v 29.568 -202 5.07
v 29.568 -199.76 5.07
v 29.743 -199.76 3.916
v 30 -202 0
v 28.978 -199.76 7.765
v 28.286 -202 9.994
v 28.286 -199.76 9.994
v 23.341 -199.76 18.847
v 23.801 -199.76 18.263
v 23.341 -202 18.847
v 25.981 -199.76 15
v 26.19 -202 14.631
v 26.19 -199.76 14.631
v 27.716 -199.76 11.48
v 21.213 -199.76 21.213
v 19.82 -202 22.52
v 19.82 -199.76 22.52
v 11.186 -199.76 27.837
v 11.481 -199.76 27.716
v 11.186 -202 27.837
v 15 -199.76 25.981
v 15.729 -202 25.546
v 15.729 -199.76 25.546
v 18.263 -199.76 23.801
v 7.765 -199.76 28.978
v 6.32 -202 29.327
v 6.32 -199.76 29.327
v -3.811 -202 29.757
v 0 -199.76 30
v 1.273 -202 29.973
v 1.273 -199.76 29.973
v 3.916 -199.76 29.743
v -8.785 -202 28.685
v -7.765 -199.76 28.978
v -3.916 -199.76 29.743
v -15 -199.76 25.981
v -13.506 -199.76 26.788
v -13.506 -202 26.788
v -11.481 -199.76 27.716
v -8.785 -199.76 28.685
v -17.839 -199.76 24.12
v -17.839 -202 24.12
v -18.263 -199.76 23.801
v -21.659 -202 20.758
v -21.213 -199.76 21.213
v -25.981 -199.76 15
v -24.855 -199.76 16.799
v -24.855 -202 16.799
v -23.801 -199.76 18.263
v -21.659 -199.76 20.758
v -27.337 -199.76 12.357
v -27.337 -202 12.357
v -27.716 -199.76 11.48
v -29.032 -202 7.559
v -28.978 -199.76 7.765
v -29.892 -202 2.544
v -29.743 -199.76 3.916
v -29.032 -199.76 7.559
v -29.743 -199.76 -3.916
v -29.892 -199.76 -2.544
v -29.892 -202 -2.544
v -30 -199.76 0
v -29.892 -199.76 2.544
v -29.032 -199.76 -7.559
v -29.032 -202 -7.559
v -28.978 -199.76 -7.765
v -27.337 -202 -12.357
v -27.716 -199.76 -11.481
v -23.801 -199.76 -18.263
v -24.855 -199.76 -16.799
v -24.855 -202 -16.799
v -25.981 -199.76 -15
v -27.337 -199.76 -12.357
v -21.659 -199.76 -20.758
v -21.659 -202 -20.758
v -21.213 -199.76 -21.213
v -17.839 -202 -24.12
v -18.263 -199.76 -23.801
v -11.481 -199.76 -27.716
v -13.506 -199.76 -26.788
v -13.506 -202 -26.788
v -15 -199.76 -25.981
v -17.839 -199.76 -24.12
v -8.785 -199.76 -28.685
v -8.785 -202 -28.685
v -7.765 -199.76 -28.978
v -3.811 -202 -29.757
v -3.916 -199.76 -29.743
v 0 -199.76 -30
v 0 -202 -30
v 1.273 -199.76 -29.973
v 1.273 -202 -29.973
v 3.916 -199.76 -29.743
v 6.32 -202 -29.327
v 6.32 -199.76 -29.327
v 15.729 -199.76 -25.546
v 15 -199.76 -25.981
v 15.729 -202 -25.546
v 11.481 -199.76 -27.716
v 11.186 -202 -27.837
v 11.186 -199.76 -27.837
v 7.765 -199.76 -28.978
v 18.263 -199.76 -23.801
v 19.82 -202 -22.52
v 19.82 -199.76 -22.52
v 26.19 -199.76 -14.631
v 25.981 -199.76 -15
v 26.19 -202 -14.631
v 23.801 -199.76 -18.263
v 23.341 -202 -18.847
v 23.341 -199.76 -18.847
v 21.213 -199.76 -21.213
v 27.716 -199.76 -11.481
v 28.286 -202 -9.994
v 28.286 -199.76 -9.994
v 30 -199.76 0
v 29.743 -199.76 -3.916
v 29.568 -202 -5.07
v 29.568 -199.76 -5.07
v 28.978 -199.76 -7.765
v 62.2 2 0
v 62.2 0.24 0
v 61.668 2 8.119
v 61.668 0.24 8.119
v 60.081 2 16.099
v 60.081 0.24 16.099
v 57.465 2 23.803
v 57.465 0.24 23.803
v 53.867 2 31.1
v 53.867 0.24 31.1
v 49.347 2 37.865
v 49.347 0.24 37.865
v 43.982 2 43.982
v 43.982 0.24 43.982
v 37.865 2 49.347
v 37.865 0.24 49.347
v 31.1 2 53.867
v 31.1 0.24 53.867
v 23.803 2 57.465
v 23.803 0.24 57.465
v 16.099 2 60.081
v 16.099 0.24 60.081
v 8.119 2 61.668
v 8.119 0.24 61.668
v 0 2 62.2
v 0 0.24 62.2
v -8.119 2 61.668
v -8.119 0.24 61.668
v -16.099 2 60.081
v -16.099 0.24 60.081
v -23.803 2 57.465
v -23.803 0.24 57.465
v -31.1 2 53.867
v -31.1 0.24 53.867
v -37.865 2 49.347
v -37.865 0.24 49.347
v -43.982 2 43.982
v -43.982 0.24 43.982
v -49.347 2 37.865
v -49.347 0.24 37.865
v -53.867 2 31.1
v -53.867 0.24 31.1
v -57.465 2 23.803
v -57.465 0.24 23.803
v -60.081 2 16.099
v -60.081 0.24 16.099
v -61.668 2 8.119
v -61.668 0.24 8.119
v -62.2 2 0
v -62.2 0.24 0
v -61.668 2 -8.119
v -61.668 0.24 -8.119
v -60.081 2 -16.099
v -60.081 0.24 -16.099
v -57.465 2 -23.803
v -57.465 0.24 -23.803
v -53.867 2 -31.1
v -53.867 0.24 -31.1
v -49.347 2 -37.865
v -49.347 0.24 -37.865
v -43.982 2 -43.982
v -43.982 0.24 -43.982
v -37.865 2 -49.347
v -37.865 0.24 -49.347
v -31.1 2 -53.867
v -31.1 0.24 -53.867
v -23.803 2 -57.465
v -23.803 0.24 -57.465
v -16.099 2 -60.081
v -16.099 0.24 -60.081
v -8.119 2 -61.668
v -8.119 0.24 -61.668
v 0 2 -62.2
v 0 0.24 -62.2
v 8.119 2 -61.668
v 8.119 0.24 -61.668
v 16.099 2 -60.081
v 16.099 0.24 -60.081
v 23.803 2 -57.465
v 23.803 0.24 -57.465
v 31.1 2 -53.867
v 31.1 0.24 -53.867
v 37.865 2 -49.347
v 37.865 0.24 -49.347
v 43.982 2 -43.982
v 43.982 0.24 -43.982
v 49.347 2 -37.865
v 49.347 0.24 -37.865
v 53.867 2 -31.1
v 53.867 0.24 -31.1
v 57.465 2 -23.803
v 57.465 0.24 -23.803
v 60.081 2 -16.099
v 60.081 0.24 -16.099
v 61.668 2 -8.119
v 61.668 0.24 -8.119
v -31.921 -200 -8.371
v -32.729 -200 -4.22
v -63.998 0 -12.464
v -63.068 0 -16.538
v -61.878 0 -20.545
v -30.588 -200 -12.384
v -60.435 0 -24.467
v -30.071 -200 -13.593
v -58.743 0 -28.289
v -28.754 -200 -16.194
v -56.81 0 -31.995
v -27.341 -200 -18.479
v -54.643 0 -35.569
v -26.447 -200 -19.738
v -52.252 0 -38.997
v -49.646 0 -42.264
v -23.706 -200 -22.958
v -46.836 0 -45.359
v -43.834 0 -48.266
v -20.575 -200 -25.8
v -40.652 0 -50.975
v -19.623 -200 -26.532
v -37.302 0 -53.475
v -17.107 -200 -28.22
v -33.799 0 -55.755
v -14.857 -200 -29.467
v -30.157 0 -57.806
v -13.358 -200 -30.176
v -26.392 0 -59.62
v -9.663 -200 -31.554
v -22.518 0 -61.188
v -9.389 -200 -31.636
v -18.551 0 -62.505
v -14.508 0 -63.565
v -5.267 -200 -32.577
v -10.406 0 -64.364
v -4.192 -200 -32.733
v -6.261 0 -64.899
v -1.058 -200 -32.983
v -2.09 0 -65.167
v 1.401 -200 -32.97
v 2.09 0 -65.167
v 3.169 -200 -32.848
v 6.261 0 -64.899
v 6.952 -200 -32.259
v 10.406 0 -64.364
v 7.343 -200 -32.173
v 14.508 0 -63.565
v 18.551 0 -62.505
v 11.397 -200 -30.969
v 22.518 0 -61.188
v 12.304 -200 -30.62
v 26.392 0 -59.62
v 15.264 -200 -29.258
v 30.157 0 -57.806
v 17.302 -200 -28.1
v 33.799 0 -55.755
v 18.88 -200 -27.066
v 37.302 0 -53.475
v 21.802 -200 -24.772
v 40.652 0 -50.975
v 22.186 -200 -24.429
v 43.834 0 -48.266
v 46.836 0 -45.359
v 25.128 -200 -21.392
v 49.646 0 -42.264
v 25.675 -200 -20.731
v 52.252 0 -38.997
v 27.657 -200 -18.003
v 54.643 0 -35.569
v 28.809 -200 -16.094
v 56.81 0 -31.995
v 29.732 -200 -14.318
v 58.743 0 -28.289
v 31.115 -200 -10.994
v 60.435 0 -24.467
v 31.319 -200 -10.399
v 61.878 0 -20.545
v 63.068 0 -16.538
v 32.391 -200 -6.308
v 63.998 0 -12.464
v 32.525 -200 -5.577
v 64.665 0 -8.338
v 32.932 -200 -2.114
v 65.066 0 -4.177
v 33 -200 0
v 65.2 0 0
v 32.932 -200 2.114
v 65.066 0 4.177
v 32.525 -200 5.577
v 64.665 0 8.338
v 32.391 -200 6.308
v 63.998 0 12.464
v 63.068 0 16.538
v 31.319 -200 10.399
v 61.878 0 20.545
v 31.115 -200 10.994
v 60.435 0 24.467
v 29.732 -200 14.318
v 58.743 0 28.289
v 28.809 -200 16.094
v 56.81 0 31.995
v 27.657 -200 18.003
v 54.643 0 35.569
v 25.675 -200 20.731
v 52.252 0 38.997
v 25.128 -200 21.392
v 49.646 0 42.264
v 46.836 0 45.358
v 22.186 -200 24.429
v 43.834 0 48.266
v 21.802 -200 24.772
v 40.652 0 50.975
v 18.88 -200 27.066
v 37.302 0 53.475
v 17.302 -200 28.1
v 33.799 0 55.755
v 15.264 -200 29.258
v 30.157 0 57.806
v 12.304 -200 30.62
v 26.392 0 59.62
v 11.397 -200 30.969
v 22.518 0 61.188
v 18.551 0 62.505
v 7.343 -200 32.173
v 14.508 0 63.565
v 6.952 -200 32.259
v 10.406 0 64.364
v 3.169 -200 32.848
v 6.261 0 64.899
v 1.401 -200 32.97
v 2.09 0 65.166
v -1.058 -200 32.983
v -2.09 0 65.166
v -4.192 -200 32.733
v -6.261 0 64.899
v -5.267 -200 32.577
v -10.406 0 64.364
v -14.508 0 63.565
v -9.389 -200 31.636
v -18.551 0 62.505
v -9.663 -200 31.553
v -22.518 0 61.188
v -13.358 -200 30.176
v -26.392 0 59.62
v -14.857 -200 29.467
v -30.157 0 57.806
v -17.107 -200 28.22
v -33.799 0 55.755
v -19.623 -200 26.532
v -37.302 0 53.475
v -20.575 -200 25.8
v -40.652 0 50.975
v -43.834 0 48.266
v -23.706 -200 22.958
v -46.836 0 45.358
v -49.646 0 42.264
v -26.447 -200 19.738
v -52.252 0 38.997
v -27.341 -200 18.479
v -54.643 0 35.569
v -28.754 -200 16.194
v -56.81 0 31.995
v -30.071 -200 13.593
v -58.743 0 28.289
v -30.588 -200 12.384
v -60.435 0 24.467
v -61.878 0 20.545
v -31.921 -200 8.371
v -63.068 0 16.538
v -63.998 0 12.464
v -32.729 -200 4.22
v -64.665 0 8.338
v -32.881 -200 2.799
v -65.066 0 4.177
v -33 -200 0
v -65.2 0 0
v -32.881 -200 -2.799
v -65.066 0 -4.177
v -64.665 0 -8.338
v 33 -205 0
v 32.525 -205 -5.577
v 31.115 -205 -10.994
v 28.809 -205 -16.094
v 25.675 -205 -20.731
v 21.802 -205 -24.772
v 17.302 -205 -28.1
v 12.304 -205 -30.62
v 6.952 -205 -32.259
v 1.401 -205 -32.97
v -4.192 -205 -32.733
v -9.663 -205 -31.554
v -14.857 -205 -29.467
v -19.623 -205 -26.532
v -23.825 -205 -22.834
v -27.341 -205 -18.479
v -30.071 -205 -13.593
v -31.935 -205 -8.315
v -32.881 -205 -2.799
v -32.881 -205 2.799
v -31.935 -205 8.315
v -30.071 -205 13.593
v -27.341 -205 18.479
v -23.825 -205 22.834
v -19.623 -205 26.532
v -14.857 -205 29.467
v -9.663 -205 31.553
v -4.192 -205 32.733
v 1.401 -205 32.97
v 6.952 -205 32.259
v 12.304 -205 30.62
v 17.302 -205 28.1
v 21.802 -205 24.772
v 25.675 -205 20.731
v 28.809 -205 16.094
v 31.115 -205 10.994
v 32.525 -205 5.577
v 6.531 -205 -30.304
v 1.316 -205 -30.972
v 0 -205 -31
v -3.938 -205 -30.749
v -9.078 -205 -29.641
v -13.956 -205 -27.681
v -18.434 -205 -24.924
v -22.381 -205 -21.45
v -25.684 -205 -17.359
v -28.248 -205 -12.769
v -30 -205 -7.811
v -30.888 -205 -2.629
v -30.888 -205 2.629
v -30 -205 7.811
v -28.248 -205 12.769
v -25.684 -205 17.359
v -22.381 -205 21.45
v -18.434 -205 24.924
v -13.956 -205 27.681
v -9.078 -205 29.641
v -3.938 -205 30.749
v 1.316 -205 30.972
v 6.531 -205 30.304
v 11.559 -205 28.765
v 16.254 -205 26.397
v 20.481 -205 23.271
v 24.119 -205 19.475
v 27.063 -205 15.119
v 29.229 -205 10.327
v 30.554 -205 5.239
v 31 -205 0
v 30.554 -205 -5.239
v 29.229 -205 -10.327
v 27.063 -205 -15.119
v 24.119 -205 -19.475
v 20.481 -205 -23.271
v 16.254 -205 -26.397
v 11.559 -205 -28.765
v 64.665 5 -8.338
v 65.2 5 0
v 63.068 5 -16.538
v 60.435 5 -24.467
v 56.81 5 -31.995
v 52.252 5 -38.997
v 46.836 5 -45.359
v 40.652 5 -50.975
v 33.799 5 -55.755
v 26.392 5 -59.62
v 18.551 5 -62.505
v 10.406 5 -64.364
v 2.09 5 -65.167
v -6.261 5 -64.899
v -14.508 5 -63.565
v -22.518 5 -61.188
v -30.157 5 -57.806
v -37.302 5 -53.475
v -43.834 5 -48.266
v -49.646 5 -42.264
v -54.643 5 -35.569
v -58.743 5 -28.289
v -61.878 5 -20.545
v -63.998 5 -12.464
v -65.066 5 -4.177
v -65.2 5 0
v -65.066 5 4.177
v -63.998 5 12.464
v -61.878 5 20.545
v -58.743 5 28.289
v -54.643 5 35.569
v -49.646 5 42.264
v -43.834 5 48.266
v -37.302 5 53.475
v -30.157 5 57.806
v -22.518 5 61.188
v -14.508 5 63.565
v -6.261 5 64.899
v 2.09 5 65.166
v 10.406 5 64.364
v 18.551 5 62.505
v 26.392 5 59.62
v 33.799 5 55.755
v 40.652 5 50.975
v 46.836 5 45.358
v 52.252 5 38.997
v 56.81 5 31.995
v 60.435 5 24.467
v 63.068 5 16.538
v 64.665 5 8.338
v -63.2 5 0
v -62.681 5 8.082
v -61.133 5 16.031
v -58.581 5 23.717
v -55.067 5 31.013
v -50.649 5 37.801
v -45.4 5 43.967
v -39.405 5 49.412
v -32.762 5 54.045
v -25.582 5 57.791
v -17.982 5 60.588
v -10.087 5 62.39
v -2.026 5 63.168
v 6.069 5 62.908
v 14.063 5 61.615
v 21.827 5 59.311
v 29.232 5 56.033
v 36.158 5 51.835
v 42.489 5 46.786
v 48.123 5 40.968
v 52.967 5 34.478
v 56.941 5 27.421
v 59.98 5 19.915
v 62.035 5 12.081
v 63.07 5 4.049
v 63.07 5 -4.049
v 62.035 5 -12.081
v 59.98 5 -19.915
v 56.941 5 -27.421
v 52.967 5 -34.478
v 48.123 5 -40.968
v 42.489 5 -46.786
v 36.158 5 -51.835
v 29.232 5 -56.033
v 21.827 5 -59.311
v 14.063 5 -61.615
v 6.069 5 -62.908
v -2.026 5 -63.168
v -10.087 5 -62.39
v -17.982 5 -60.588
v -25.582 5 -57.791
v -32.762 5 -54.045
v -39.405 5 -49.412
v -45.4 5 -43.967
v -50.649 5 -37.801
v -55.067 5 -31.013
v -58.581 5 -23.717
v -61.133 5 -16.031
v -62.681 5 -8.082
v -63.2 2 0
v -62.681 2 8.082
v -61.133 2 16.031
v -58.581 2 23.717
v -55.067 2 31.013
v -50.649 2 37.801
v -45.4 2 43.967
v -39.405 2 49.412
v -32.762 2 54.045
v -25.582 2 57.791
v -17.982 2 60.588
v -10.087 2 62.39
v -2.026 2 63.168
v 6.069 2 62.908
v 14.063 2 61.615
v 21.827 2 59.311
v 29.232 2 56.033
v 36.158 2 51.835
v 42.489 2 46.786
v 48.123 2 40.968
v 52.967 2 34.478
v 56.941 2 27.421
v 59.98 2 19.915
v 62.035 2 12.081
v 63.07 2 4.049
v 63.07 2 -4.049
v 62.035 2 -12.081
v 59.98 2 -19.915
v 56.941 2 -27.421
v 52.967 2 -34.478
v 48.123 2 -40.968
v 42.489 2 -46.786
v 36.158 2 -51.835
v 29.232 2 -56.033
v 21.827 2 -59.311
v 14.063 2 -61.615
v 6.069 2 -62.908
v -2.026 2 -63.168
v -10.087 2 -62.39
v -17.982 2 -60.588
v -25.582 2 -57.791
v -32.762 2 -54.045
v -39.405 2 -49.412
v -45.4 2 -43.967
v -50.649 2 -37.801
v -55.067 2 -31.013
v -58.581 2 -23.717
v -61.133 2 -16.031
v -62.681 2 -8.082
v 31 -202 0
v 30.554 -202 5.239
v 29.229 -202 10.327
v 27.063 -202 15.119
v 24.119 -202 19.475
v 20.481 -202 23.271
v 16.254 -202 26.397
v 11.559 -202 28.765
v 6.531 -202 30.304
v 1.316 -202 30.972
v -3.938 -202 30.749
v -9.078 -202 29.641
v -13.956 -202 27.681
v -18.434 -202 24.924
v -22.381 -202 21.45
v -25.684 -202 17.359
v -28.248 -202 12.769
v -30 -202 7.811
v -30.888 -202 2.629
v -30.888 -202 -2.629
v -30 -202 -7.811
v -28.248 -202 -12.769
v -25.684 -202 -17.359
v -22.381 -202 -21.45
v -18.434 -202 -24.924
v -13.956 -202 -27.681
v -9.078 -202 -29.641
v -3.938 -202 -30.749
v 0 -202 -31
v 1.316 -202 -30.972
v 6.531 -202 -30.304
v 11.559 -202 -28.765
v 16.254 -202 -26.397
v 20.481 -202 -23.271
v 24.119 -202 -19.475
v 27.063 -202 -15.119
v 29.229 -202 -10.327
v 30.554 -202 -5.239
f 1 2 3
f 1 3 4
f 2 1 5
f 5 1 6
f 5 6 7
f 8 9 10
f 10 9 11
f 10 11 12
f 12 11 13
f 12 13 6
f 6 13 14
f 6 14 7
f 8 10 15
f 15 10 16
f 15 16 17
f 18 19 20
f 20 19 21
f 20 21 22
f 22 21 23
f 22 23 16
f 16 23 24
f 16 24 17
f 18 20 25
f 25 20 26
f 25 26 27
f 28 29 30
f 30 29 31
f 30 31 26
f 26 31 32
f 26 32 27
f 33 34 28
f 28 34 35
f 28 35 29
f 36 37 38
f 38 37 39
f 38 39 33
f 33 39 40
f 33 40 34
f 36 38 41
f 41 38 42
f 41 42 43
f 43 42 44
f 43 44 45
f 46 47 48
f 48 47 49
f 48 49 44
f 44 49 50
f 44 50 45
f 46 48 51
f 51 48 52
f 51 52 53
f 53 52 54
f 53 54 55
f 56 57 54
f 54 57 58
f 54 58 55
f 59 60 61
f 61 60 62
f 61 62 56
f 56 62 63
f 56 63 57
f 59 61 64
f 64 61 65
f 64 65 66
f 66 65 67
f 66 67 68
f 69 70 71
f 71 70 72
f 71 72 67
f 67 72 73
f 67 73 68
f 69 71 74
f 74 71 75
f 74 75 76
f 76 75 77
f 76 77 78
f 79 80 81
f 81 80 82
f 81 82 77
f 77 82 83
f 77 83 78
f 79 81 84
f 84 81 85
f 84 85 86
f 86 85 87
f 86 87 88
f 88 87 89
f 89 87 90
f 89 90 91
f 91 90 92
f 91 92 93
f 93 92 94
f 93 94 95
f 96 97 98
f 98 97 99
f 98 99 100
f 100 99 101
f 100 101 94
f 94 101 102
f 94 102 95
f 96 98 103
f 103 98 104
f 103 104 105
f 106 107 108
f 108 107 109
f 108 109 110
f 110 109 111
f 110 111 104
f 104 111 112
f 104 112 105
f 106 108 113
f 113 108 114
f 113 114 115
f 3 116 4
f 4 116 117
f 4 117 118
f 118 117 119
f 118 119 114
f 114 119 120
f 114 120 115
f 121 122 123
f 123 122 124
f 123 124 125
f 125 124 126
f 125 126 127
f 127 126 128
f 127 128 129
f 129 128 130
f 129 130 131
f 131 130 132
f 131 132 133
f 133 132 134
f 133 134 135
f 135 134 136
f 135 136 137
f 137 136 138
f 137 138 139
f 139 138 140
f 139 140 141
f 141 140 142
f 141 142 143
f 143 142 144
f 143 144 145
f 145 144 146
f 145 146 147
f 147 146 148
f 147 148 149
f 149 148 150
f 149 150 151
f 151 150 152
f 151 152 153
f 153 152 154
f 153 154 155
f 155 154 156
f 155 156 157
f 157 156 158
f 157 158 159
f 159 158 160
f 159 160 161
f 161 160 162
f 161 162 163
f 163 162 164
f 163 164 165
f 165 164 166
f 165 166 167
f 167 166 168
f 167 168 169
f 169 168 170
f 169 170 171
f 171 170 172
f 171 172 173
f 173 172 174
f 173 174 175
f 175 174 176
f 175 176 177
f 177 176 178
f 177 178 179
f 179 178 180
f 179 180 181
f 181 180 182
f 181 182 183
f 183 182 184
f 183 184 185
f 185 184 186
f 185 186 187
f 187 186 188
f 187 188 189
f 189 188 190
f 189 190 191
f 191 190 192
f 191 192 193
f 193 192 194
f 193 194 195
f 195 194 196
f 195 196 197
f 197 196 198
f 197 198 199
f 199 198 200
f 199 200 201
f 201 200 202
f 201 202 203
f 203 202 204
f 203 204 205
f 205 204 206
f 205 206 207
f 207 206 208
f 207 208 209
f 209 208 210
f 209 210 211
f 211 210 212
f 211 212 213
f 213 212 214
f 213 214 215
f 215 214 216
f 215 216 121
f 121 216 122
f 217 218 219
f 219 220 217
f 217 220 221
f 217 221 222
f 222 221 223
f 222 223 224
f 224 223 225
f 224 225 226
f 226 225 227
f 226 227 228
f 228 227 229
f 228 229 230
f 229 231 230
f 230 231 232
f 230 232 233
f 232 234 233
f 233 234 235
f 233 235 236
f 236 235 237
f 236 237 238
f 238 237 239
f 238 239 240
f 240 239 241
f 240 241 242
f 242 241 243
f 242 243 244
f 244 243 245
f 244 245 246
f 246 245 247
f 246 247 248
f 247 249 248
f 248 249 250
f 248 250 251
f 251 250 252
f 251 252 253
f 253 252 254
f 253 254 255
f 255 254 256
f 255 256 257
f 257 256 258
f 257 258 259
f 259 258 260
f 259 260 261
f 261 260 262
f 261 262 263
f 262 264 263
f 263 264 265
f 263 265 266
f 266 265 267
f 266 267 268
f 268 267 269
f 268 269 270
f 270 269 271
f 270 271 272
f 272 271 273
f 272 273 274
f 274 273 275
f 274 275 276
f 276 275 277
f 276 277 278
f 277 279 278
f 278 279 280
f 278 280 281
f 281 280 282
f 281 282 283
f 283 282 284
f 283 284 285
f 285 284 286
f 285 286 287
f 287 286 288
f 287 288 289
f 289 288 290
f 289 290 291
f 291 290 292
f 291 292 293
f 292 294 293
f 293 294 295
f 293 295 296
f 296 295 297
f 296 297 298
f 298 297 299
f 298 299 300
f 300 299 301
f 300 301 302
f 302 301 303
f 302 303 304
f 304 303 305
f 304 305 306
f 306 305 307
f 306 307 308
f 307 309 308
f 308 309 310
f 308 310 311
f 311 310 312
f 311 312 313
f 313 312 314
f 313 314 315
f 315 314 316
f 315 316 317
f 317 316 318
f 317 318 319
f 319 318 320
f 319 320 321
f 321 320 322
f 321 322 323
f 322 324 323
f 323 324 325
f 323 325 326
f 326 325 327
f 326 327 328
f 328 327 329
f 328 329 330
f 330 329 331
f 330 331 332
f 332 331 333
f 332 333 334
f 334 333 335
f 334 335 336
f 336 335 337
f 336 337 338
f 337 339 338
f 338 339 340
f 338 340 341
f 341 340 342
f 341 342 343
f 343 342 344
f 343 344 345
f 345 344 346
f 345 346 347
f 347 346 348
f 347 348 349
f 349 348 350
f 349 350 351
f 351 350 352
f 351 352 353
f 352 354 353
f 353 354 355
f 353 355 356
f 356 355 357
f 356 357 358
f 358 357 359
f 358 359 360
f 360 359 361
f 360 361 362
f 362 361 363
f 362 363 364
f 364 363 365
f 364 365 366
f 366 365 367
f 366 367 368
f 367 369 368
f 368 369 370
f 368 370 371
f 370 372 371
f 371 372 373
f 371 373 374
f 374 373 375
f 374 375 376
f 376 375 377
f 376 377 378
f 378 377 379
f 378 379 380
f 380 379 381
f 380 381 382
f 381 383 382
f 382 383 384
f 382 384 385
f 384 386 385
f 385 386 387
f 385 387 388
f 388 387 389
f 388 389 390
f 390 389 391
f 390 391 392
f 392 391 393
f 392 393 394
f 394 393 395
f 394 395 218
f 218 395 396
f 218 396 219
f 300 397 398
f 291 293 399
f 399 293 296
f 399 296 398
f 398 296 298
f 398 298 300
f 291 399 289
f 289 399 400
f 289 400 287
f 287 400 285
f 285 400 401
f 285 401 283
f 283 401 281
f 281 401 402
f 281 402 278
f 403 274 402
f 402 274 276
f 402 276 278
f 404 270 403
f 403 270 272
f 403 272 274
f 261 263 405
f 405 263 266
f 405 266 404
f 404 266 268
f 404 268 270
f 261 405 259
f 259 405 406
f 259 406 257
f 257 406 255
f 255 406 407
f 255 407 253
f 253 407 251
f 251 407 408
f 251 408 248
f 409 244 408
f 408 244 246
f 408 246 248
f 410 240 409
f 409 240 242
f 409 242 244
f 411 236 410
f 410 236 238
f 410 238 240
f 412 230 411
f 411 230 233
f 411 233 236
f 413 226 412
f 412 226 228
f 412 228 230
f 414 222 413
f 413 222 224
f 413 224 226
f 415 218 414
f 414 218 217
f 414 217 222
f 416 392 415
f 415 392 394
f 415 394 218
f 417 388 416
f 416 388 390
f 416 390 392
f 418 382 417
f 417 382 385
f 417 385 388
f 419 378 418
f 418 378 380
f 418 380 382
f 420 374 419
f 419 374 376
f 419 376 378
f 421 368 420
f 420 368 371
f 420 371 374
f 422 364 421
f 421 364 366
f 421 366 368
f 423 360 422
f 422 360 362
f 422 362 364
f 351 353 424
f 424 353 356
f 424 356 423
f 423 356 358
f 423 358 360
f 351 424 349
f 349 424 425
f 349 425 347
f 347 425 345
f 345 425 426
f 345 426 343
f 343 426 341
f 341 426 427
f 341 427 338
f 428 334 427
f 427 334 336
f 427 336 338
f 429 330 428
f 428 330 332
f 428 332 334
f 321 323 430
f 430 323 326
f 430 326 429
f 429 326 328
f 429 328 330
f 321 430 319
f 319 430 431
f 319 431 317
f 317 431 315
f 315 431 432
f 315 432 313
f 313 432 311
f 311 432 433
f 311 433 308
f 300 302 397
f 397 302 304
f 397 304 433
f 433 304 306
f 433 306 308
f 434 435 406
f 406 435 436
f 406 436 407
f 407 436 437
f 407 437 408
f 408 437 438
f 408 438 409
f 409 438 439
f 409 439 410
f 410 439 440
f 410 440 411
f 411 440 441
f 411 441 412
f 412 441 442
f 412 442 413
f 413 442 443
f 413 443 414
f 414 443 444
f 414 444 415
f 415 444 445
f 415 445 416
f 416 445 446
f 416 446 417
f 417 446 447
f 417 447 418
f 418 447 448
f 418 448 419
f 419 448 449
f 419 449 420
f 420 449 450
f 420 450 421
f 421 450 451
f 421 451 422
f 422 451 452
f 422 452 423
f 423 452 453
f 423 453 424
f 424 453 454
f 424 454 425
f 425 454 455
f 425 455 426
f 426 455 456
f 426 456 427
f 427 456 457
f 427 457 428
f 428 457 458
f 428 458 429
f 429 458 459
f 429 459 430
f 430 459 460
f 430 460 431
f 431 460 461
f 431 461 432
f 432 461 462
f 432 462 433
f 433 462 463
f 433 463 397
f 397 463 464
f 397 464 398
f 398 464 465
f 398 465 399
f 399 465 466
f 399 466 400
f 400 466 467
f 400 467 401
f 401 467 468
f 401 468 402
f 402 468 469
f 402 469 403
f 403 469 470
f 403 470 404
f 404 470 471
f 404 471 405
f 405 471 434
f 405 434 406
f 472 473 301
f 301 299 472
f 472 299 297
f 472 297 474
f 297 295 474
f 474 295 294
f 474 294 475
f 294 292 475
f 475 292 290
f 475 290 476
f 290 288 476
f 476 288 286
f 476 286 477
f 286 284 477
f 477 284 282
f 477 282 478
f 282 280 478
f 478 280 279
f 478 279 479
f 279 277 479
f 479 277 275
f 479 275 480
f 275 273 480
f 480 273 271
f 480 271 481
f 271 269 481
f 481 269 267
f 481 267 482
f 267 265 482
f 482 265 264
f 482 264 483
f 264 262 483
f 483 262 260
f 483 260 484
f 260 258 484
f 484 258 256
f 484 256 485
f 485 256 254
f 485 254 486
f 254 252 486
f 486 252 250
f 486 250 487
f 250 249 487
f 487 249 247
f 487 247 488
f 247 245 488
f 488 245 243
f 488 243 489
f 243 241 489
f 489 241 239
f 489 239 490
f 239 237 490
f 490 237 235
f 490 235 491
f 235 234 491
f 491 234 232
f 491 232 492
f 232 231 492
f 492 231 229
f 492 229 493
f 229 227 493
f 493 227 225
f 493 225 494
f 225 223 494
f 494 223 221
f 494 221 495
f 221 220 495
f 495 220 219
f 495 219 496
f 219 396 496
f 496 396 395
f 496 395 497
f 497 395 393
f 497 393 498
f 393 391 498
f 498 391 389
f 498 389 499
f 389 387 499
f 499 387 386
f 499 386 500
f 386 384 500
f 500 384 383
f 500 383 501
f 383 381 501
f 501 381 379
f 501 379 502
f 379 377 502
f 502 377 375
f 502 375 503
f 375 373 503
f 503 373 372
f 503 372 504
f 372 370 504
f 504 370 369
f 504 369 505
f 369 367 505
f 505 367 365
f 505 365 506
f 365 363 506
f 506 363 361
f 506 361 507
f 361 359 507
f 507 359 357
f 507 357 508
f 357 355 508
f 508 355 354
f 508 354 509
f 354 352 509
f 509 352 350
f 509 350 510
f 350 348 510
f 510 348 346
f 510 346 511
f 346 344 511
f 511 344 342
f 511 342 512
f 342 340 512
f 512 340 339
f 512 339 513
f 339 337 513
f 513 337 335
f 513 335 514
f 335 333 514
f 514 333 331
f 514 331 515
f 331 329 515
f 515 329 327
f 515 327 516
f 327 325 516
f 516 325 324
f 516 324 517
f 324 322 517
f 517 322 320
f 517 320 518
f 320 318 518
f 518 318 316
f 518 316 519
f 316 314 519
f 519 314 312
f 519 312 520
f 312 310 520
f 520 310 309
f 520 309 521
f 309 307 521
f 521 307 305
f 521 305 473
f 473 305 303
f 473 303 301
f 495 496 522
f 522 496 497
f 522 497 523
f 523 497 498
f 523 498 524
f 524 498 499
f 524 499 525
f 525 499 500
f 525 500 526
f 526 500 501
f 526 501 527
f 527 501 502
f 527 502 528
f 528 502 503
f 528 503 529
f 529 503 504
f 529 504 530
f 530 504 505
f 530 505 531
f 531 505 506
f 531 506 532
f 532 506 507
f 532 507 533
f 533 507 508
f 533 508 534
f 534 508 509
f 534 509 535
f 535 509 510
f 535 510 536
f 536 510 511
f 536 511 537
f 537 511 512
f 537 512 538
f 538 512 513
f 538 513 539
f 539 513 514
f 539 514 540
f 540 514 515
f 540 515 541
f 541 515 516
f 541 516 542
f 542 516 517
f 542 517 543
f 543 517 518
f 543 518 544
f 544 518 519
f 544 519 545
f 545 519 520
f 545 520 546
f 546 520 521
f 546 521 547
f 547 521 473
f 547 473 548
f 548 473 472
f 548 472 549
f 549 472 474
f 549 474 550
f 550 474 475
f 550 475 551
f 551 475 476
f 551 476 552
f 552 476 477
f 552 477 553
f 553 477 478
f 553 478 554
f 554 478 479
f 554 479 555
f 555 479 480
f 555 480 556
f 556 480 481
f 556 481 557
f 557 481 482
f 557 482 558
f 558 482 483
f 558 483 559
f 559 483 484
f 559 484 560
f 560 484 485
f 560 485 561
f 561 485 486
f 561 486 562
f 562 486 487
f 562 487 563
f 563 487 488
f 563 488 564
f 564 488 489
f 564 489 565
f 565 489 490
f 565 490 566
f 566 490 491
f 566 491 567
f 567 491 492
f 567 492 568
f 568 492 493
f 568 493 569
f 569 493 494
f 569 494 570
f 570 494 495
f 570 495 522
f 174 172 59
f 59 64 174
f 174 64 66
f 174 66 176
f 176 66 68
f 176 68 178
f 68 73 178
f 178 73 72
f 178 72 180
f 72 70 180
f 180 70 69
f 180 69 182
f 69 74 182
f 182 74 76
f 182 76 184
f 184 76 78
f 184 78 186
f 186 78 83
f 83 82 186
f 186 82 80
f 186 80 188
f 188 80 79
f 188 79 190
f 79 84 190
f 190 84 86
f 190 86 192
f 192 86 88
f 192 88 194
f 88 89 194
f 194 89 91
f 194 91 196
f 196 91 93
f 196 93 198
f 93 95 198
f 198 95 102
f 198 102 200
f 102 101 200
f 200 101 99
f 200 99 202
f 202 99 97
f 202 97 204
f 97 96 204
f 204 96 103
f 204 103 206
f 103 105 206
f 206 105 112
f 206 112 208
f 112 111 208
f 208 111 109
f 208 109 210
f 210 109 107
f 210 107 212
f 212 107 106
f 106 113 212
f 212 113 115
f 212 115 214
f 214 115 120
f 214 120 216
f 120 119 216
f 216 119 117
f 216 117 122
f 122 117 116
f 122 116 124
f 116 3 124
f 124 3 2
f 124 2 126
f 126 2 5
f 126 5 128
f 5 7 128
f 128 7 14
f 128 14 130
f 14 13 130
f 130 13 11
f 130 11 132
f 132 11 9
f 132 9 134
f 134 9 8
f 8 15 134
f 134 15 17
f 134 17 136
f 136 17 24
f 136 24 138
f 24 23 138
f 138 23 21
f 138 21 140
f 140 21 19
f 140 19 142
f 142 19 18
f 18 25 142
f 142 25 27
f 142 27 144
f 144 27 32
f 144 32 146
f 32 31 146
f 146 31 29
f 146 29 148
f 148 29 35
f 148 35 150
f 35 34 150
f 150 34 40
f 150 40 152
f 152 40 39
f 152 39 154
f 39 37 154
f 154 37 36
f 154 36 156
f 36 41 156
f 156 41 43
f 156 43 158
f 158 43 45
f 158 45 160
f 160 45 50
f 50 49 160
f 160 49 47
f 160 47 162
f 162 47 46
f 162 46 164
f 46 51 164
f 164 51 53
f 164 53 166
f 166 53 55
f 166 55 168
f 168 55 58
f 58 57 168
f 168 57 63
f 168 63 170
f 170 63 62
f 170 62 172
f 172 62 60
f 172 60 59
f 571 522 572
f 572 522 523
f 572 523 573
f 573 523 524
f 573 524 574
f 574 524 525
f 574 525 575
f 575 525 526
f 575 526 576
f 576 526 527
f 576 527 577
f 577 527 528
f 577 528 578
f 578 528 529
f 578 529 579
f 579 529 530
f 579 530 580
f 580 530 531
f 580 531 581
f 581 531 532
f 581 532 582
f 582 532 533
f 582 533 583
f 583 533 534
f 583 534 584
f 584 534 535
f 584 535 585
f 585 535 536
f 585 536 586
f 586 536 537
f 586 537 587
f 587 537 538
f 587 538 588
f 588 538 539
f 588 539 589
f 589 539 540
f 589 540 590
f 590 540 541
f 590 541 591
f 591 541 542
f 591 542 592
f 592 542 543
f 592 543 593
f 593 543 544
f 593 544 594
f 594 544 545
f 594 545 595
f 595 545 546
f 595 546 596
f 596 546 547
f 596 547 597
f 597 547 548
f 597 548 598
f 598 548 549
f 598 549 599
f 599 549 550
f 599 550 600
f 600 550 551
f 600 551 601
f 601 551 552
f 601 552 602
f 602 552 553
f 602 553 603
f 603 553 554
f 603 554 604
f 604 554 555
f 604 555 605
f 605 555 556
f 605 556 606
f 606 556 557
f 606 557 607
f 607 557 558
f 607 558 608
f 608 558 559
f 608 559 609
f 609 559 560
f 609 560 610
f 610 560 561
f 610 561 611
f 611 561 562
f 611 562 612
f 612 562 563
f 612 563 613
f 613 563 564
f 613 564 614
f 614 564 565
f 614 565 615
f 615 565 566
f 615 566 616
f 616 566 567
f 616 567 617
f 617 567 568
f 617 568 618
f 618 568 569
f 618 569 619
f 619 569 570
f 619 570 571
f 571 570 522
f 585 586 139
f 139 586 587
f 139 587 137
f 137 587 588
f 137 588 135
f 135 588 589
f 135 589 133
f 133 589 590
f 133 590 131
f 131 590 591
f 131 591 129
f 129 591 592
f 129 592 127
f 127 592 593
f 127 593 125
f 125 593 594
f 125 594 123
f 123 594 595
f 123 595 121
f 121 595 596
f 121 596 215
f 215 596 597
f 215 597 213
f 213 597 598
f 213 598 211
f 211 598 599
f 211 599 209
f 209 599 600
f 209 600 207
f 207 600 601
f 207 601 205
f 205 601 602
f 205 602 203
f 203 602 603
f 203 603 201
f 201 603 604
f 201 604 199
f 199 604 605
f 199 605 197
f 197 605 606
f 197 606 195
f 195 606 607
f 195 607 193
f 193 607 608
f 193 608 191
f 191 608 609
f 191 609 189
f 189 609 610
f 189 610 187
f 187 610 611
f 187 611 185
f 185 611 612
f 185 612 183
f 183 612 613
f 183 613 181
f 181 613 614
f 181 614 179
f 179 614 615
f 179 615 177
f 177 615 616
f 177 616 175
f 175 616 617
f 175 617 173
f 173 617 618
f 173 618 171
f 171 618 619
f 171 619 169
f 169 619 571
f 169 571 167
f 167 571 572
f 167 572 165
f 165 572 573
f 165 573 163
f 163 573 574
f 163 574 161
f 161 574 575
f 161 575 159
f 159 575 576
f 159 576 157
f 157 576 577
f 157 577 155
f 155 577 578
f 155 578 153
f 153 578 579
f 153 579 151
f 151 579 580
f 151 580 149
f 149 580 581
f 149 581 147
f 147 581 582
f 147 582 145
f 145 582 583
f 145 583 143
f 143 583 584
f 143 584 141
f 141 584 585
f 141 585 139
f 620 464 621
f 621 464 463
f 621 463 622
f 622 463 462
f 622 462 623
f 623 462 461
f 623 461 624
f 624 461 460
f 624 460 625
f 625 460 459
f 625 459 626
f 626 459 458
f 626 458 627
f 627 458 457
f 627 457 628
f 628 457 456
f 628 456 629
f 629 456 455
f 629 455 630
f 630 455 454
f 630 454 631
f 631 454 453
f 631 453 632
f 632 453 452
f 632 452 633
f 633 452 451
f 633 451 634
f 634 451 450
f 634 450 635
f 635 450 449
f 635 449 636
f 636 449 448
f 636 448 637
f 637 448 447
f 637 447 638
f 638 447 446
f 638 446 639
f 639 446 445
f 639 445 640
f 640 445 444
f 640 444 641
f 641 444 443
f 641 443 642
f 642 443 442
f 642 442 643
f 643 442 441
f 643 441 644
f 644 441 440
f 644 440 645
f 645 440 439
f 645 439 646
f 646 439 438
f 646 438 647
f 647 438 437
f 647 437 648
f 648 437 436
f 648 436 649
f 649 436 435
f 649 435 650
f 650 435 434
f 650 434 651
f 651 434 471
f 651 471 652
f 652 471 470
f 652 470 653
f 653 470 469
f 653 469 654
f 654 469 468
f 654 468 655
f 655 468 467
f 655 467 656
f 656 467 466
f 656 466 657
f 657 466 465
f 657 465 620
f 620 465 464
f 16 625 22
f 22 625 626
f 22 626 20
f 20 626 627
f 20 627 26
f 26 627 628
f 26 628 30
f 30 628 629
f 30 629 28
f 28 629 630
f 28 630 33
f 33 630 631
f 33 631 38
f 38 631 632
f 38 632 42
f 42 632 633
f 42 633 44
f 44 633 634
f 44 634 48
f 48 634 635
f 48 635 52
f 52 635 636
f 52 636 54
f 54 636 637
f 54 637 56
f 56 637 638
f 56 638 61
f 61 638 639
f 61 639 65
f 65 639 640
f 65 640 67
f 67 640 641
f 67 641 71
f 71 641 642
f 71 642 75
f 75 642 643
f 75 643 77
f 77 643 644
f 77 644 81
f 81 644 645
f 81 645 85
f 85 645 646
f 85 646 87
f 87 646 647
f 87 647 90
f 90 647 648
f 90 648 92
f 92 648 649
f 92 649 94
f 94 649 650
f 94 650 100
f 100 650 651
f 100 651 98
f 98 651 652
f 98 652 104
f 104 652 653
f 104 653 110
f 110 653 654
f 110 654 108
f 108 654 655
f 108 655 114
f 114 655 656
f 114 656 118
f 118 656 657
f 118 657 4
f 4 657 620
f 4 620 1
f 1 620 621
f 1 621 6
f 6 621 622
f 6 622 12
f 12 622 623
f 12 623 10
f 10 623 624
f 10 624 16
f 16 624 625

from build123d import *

# Parameters (mm, degrees)
SKETCH_3_R          = 65.2
EXTRUDE_2_DEPTH     = 5
SHELL_1_T           = -3
CUT_EXTRUDE_START   = -3
SKETCH_4_R          = 63.2
SKETCH_4_R_2        = 62.2
CUT_EXTRUDE_3_DEPTH = 3
SKETCH_7_R          = 31
SKETCH_7_R_2        = 30
CUT_EXTRUDE_6_DEPTH = 3


with BuildPart() as part:
    # 스케치1 → 회전1 (revolve)
    with BuildSketch(Plane.XY):
        Polygon((0, 0), (65.2, 0), (33, -200), (33, -205), (0, -205), align=None)
    revolve(axis=Axis((0, -205, 0), (0, 1, 0)))

    # 스케치3 → 보스-돌출2 (add)
    with BuildSketch(Plane(origin=(0, 0, 0), x_dir=(1, 0, 0), z_dir=(0, 1, 0))):
        Circle(SKETCH_3_R)
    extrude(amount=EXTRUDE_2_DEPTH)

    # 쉘1
    shell_1_openings = [part.faces().sort_by_distance(p)[0] for p in [
        (0, -205, 0),
        (0, 5, 0),
    ]]
    offset(amount=SHELL_1_T, openings=shell_1_openings, kind=Kind.INTERSECTION)

    # 스케치4 → 컷-돌출3 (cut)
    with BuildSketch(Plane(origin=(0, 5, 0), x_dir=(1, 0, 0), z_dir=(0, 1, 0)).offset(CUT_EXTRUDE_START)):
        Circle(SKETCH_4_R)
        Circle(SKETCH_4_R_2, mode=Mode.SUBTRACT)
    extrude(amount=CUT_EXTRUDE_3_DEPTH, mode=Mode.SUBTRACT)

    # 스케치7 → 컷-돌출6 (cut)
    with BuildSketch(Plane.XZ.offset(205)):
        Circle(SKETCH_7_R)
        Circle(SKETCH_7_R_2, mode=Mode.SUBTRACT)
    extrude(amount=-CUT_EXTRUDE_6_DEPTH, mode=Mode.SUBTRACT)


solid = part.part
